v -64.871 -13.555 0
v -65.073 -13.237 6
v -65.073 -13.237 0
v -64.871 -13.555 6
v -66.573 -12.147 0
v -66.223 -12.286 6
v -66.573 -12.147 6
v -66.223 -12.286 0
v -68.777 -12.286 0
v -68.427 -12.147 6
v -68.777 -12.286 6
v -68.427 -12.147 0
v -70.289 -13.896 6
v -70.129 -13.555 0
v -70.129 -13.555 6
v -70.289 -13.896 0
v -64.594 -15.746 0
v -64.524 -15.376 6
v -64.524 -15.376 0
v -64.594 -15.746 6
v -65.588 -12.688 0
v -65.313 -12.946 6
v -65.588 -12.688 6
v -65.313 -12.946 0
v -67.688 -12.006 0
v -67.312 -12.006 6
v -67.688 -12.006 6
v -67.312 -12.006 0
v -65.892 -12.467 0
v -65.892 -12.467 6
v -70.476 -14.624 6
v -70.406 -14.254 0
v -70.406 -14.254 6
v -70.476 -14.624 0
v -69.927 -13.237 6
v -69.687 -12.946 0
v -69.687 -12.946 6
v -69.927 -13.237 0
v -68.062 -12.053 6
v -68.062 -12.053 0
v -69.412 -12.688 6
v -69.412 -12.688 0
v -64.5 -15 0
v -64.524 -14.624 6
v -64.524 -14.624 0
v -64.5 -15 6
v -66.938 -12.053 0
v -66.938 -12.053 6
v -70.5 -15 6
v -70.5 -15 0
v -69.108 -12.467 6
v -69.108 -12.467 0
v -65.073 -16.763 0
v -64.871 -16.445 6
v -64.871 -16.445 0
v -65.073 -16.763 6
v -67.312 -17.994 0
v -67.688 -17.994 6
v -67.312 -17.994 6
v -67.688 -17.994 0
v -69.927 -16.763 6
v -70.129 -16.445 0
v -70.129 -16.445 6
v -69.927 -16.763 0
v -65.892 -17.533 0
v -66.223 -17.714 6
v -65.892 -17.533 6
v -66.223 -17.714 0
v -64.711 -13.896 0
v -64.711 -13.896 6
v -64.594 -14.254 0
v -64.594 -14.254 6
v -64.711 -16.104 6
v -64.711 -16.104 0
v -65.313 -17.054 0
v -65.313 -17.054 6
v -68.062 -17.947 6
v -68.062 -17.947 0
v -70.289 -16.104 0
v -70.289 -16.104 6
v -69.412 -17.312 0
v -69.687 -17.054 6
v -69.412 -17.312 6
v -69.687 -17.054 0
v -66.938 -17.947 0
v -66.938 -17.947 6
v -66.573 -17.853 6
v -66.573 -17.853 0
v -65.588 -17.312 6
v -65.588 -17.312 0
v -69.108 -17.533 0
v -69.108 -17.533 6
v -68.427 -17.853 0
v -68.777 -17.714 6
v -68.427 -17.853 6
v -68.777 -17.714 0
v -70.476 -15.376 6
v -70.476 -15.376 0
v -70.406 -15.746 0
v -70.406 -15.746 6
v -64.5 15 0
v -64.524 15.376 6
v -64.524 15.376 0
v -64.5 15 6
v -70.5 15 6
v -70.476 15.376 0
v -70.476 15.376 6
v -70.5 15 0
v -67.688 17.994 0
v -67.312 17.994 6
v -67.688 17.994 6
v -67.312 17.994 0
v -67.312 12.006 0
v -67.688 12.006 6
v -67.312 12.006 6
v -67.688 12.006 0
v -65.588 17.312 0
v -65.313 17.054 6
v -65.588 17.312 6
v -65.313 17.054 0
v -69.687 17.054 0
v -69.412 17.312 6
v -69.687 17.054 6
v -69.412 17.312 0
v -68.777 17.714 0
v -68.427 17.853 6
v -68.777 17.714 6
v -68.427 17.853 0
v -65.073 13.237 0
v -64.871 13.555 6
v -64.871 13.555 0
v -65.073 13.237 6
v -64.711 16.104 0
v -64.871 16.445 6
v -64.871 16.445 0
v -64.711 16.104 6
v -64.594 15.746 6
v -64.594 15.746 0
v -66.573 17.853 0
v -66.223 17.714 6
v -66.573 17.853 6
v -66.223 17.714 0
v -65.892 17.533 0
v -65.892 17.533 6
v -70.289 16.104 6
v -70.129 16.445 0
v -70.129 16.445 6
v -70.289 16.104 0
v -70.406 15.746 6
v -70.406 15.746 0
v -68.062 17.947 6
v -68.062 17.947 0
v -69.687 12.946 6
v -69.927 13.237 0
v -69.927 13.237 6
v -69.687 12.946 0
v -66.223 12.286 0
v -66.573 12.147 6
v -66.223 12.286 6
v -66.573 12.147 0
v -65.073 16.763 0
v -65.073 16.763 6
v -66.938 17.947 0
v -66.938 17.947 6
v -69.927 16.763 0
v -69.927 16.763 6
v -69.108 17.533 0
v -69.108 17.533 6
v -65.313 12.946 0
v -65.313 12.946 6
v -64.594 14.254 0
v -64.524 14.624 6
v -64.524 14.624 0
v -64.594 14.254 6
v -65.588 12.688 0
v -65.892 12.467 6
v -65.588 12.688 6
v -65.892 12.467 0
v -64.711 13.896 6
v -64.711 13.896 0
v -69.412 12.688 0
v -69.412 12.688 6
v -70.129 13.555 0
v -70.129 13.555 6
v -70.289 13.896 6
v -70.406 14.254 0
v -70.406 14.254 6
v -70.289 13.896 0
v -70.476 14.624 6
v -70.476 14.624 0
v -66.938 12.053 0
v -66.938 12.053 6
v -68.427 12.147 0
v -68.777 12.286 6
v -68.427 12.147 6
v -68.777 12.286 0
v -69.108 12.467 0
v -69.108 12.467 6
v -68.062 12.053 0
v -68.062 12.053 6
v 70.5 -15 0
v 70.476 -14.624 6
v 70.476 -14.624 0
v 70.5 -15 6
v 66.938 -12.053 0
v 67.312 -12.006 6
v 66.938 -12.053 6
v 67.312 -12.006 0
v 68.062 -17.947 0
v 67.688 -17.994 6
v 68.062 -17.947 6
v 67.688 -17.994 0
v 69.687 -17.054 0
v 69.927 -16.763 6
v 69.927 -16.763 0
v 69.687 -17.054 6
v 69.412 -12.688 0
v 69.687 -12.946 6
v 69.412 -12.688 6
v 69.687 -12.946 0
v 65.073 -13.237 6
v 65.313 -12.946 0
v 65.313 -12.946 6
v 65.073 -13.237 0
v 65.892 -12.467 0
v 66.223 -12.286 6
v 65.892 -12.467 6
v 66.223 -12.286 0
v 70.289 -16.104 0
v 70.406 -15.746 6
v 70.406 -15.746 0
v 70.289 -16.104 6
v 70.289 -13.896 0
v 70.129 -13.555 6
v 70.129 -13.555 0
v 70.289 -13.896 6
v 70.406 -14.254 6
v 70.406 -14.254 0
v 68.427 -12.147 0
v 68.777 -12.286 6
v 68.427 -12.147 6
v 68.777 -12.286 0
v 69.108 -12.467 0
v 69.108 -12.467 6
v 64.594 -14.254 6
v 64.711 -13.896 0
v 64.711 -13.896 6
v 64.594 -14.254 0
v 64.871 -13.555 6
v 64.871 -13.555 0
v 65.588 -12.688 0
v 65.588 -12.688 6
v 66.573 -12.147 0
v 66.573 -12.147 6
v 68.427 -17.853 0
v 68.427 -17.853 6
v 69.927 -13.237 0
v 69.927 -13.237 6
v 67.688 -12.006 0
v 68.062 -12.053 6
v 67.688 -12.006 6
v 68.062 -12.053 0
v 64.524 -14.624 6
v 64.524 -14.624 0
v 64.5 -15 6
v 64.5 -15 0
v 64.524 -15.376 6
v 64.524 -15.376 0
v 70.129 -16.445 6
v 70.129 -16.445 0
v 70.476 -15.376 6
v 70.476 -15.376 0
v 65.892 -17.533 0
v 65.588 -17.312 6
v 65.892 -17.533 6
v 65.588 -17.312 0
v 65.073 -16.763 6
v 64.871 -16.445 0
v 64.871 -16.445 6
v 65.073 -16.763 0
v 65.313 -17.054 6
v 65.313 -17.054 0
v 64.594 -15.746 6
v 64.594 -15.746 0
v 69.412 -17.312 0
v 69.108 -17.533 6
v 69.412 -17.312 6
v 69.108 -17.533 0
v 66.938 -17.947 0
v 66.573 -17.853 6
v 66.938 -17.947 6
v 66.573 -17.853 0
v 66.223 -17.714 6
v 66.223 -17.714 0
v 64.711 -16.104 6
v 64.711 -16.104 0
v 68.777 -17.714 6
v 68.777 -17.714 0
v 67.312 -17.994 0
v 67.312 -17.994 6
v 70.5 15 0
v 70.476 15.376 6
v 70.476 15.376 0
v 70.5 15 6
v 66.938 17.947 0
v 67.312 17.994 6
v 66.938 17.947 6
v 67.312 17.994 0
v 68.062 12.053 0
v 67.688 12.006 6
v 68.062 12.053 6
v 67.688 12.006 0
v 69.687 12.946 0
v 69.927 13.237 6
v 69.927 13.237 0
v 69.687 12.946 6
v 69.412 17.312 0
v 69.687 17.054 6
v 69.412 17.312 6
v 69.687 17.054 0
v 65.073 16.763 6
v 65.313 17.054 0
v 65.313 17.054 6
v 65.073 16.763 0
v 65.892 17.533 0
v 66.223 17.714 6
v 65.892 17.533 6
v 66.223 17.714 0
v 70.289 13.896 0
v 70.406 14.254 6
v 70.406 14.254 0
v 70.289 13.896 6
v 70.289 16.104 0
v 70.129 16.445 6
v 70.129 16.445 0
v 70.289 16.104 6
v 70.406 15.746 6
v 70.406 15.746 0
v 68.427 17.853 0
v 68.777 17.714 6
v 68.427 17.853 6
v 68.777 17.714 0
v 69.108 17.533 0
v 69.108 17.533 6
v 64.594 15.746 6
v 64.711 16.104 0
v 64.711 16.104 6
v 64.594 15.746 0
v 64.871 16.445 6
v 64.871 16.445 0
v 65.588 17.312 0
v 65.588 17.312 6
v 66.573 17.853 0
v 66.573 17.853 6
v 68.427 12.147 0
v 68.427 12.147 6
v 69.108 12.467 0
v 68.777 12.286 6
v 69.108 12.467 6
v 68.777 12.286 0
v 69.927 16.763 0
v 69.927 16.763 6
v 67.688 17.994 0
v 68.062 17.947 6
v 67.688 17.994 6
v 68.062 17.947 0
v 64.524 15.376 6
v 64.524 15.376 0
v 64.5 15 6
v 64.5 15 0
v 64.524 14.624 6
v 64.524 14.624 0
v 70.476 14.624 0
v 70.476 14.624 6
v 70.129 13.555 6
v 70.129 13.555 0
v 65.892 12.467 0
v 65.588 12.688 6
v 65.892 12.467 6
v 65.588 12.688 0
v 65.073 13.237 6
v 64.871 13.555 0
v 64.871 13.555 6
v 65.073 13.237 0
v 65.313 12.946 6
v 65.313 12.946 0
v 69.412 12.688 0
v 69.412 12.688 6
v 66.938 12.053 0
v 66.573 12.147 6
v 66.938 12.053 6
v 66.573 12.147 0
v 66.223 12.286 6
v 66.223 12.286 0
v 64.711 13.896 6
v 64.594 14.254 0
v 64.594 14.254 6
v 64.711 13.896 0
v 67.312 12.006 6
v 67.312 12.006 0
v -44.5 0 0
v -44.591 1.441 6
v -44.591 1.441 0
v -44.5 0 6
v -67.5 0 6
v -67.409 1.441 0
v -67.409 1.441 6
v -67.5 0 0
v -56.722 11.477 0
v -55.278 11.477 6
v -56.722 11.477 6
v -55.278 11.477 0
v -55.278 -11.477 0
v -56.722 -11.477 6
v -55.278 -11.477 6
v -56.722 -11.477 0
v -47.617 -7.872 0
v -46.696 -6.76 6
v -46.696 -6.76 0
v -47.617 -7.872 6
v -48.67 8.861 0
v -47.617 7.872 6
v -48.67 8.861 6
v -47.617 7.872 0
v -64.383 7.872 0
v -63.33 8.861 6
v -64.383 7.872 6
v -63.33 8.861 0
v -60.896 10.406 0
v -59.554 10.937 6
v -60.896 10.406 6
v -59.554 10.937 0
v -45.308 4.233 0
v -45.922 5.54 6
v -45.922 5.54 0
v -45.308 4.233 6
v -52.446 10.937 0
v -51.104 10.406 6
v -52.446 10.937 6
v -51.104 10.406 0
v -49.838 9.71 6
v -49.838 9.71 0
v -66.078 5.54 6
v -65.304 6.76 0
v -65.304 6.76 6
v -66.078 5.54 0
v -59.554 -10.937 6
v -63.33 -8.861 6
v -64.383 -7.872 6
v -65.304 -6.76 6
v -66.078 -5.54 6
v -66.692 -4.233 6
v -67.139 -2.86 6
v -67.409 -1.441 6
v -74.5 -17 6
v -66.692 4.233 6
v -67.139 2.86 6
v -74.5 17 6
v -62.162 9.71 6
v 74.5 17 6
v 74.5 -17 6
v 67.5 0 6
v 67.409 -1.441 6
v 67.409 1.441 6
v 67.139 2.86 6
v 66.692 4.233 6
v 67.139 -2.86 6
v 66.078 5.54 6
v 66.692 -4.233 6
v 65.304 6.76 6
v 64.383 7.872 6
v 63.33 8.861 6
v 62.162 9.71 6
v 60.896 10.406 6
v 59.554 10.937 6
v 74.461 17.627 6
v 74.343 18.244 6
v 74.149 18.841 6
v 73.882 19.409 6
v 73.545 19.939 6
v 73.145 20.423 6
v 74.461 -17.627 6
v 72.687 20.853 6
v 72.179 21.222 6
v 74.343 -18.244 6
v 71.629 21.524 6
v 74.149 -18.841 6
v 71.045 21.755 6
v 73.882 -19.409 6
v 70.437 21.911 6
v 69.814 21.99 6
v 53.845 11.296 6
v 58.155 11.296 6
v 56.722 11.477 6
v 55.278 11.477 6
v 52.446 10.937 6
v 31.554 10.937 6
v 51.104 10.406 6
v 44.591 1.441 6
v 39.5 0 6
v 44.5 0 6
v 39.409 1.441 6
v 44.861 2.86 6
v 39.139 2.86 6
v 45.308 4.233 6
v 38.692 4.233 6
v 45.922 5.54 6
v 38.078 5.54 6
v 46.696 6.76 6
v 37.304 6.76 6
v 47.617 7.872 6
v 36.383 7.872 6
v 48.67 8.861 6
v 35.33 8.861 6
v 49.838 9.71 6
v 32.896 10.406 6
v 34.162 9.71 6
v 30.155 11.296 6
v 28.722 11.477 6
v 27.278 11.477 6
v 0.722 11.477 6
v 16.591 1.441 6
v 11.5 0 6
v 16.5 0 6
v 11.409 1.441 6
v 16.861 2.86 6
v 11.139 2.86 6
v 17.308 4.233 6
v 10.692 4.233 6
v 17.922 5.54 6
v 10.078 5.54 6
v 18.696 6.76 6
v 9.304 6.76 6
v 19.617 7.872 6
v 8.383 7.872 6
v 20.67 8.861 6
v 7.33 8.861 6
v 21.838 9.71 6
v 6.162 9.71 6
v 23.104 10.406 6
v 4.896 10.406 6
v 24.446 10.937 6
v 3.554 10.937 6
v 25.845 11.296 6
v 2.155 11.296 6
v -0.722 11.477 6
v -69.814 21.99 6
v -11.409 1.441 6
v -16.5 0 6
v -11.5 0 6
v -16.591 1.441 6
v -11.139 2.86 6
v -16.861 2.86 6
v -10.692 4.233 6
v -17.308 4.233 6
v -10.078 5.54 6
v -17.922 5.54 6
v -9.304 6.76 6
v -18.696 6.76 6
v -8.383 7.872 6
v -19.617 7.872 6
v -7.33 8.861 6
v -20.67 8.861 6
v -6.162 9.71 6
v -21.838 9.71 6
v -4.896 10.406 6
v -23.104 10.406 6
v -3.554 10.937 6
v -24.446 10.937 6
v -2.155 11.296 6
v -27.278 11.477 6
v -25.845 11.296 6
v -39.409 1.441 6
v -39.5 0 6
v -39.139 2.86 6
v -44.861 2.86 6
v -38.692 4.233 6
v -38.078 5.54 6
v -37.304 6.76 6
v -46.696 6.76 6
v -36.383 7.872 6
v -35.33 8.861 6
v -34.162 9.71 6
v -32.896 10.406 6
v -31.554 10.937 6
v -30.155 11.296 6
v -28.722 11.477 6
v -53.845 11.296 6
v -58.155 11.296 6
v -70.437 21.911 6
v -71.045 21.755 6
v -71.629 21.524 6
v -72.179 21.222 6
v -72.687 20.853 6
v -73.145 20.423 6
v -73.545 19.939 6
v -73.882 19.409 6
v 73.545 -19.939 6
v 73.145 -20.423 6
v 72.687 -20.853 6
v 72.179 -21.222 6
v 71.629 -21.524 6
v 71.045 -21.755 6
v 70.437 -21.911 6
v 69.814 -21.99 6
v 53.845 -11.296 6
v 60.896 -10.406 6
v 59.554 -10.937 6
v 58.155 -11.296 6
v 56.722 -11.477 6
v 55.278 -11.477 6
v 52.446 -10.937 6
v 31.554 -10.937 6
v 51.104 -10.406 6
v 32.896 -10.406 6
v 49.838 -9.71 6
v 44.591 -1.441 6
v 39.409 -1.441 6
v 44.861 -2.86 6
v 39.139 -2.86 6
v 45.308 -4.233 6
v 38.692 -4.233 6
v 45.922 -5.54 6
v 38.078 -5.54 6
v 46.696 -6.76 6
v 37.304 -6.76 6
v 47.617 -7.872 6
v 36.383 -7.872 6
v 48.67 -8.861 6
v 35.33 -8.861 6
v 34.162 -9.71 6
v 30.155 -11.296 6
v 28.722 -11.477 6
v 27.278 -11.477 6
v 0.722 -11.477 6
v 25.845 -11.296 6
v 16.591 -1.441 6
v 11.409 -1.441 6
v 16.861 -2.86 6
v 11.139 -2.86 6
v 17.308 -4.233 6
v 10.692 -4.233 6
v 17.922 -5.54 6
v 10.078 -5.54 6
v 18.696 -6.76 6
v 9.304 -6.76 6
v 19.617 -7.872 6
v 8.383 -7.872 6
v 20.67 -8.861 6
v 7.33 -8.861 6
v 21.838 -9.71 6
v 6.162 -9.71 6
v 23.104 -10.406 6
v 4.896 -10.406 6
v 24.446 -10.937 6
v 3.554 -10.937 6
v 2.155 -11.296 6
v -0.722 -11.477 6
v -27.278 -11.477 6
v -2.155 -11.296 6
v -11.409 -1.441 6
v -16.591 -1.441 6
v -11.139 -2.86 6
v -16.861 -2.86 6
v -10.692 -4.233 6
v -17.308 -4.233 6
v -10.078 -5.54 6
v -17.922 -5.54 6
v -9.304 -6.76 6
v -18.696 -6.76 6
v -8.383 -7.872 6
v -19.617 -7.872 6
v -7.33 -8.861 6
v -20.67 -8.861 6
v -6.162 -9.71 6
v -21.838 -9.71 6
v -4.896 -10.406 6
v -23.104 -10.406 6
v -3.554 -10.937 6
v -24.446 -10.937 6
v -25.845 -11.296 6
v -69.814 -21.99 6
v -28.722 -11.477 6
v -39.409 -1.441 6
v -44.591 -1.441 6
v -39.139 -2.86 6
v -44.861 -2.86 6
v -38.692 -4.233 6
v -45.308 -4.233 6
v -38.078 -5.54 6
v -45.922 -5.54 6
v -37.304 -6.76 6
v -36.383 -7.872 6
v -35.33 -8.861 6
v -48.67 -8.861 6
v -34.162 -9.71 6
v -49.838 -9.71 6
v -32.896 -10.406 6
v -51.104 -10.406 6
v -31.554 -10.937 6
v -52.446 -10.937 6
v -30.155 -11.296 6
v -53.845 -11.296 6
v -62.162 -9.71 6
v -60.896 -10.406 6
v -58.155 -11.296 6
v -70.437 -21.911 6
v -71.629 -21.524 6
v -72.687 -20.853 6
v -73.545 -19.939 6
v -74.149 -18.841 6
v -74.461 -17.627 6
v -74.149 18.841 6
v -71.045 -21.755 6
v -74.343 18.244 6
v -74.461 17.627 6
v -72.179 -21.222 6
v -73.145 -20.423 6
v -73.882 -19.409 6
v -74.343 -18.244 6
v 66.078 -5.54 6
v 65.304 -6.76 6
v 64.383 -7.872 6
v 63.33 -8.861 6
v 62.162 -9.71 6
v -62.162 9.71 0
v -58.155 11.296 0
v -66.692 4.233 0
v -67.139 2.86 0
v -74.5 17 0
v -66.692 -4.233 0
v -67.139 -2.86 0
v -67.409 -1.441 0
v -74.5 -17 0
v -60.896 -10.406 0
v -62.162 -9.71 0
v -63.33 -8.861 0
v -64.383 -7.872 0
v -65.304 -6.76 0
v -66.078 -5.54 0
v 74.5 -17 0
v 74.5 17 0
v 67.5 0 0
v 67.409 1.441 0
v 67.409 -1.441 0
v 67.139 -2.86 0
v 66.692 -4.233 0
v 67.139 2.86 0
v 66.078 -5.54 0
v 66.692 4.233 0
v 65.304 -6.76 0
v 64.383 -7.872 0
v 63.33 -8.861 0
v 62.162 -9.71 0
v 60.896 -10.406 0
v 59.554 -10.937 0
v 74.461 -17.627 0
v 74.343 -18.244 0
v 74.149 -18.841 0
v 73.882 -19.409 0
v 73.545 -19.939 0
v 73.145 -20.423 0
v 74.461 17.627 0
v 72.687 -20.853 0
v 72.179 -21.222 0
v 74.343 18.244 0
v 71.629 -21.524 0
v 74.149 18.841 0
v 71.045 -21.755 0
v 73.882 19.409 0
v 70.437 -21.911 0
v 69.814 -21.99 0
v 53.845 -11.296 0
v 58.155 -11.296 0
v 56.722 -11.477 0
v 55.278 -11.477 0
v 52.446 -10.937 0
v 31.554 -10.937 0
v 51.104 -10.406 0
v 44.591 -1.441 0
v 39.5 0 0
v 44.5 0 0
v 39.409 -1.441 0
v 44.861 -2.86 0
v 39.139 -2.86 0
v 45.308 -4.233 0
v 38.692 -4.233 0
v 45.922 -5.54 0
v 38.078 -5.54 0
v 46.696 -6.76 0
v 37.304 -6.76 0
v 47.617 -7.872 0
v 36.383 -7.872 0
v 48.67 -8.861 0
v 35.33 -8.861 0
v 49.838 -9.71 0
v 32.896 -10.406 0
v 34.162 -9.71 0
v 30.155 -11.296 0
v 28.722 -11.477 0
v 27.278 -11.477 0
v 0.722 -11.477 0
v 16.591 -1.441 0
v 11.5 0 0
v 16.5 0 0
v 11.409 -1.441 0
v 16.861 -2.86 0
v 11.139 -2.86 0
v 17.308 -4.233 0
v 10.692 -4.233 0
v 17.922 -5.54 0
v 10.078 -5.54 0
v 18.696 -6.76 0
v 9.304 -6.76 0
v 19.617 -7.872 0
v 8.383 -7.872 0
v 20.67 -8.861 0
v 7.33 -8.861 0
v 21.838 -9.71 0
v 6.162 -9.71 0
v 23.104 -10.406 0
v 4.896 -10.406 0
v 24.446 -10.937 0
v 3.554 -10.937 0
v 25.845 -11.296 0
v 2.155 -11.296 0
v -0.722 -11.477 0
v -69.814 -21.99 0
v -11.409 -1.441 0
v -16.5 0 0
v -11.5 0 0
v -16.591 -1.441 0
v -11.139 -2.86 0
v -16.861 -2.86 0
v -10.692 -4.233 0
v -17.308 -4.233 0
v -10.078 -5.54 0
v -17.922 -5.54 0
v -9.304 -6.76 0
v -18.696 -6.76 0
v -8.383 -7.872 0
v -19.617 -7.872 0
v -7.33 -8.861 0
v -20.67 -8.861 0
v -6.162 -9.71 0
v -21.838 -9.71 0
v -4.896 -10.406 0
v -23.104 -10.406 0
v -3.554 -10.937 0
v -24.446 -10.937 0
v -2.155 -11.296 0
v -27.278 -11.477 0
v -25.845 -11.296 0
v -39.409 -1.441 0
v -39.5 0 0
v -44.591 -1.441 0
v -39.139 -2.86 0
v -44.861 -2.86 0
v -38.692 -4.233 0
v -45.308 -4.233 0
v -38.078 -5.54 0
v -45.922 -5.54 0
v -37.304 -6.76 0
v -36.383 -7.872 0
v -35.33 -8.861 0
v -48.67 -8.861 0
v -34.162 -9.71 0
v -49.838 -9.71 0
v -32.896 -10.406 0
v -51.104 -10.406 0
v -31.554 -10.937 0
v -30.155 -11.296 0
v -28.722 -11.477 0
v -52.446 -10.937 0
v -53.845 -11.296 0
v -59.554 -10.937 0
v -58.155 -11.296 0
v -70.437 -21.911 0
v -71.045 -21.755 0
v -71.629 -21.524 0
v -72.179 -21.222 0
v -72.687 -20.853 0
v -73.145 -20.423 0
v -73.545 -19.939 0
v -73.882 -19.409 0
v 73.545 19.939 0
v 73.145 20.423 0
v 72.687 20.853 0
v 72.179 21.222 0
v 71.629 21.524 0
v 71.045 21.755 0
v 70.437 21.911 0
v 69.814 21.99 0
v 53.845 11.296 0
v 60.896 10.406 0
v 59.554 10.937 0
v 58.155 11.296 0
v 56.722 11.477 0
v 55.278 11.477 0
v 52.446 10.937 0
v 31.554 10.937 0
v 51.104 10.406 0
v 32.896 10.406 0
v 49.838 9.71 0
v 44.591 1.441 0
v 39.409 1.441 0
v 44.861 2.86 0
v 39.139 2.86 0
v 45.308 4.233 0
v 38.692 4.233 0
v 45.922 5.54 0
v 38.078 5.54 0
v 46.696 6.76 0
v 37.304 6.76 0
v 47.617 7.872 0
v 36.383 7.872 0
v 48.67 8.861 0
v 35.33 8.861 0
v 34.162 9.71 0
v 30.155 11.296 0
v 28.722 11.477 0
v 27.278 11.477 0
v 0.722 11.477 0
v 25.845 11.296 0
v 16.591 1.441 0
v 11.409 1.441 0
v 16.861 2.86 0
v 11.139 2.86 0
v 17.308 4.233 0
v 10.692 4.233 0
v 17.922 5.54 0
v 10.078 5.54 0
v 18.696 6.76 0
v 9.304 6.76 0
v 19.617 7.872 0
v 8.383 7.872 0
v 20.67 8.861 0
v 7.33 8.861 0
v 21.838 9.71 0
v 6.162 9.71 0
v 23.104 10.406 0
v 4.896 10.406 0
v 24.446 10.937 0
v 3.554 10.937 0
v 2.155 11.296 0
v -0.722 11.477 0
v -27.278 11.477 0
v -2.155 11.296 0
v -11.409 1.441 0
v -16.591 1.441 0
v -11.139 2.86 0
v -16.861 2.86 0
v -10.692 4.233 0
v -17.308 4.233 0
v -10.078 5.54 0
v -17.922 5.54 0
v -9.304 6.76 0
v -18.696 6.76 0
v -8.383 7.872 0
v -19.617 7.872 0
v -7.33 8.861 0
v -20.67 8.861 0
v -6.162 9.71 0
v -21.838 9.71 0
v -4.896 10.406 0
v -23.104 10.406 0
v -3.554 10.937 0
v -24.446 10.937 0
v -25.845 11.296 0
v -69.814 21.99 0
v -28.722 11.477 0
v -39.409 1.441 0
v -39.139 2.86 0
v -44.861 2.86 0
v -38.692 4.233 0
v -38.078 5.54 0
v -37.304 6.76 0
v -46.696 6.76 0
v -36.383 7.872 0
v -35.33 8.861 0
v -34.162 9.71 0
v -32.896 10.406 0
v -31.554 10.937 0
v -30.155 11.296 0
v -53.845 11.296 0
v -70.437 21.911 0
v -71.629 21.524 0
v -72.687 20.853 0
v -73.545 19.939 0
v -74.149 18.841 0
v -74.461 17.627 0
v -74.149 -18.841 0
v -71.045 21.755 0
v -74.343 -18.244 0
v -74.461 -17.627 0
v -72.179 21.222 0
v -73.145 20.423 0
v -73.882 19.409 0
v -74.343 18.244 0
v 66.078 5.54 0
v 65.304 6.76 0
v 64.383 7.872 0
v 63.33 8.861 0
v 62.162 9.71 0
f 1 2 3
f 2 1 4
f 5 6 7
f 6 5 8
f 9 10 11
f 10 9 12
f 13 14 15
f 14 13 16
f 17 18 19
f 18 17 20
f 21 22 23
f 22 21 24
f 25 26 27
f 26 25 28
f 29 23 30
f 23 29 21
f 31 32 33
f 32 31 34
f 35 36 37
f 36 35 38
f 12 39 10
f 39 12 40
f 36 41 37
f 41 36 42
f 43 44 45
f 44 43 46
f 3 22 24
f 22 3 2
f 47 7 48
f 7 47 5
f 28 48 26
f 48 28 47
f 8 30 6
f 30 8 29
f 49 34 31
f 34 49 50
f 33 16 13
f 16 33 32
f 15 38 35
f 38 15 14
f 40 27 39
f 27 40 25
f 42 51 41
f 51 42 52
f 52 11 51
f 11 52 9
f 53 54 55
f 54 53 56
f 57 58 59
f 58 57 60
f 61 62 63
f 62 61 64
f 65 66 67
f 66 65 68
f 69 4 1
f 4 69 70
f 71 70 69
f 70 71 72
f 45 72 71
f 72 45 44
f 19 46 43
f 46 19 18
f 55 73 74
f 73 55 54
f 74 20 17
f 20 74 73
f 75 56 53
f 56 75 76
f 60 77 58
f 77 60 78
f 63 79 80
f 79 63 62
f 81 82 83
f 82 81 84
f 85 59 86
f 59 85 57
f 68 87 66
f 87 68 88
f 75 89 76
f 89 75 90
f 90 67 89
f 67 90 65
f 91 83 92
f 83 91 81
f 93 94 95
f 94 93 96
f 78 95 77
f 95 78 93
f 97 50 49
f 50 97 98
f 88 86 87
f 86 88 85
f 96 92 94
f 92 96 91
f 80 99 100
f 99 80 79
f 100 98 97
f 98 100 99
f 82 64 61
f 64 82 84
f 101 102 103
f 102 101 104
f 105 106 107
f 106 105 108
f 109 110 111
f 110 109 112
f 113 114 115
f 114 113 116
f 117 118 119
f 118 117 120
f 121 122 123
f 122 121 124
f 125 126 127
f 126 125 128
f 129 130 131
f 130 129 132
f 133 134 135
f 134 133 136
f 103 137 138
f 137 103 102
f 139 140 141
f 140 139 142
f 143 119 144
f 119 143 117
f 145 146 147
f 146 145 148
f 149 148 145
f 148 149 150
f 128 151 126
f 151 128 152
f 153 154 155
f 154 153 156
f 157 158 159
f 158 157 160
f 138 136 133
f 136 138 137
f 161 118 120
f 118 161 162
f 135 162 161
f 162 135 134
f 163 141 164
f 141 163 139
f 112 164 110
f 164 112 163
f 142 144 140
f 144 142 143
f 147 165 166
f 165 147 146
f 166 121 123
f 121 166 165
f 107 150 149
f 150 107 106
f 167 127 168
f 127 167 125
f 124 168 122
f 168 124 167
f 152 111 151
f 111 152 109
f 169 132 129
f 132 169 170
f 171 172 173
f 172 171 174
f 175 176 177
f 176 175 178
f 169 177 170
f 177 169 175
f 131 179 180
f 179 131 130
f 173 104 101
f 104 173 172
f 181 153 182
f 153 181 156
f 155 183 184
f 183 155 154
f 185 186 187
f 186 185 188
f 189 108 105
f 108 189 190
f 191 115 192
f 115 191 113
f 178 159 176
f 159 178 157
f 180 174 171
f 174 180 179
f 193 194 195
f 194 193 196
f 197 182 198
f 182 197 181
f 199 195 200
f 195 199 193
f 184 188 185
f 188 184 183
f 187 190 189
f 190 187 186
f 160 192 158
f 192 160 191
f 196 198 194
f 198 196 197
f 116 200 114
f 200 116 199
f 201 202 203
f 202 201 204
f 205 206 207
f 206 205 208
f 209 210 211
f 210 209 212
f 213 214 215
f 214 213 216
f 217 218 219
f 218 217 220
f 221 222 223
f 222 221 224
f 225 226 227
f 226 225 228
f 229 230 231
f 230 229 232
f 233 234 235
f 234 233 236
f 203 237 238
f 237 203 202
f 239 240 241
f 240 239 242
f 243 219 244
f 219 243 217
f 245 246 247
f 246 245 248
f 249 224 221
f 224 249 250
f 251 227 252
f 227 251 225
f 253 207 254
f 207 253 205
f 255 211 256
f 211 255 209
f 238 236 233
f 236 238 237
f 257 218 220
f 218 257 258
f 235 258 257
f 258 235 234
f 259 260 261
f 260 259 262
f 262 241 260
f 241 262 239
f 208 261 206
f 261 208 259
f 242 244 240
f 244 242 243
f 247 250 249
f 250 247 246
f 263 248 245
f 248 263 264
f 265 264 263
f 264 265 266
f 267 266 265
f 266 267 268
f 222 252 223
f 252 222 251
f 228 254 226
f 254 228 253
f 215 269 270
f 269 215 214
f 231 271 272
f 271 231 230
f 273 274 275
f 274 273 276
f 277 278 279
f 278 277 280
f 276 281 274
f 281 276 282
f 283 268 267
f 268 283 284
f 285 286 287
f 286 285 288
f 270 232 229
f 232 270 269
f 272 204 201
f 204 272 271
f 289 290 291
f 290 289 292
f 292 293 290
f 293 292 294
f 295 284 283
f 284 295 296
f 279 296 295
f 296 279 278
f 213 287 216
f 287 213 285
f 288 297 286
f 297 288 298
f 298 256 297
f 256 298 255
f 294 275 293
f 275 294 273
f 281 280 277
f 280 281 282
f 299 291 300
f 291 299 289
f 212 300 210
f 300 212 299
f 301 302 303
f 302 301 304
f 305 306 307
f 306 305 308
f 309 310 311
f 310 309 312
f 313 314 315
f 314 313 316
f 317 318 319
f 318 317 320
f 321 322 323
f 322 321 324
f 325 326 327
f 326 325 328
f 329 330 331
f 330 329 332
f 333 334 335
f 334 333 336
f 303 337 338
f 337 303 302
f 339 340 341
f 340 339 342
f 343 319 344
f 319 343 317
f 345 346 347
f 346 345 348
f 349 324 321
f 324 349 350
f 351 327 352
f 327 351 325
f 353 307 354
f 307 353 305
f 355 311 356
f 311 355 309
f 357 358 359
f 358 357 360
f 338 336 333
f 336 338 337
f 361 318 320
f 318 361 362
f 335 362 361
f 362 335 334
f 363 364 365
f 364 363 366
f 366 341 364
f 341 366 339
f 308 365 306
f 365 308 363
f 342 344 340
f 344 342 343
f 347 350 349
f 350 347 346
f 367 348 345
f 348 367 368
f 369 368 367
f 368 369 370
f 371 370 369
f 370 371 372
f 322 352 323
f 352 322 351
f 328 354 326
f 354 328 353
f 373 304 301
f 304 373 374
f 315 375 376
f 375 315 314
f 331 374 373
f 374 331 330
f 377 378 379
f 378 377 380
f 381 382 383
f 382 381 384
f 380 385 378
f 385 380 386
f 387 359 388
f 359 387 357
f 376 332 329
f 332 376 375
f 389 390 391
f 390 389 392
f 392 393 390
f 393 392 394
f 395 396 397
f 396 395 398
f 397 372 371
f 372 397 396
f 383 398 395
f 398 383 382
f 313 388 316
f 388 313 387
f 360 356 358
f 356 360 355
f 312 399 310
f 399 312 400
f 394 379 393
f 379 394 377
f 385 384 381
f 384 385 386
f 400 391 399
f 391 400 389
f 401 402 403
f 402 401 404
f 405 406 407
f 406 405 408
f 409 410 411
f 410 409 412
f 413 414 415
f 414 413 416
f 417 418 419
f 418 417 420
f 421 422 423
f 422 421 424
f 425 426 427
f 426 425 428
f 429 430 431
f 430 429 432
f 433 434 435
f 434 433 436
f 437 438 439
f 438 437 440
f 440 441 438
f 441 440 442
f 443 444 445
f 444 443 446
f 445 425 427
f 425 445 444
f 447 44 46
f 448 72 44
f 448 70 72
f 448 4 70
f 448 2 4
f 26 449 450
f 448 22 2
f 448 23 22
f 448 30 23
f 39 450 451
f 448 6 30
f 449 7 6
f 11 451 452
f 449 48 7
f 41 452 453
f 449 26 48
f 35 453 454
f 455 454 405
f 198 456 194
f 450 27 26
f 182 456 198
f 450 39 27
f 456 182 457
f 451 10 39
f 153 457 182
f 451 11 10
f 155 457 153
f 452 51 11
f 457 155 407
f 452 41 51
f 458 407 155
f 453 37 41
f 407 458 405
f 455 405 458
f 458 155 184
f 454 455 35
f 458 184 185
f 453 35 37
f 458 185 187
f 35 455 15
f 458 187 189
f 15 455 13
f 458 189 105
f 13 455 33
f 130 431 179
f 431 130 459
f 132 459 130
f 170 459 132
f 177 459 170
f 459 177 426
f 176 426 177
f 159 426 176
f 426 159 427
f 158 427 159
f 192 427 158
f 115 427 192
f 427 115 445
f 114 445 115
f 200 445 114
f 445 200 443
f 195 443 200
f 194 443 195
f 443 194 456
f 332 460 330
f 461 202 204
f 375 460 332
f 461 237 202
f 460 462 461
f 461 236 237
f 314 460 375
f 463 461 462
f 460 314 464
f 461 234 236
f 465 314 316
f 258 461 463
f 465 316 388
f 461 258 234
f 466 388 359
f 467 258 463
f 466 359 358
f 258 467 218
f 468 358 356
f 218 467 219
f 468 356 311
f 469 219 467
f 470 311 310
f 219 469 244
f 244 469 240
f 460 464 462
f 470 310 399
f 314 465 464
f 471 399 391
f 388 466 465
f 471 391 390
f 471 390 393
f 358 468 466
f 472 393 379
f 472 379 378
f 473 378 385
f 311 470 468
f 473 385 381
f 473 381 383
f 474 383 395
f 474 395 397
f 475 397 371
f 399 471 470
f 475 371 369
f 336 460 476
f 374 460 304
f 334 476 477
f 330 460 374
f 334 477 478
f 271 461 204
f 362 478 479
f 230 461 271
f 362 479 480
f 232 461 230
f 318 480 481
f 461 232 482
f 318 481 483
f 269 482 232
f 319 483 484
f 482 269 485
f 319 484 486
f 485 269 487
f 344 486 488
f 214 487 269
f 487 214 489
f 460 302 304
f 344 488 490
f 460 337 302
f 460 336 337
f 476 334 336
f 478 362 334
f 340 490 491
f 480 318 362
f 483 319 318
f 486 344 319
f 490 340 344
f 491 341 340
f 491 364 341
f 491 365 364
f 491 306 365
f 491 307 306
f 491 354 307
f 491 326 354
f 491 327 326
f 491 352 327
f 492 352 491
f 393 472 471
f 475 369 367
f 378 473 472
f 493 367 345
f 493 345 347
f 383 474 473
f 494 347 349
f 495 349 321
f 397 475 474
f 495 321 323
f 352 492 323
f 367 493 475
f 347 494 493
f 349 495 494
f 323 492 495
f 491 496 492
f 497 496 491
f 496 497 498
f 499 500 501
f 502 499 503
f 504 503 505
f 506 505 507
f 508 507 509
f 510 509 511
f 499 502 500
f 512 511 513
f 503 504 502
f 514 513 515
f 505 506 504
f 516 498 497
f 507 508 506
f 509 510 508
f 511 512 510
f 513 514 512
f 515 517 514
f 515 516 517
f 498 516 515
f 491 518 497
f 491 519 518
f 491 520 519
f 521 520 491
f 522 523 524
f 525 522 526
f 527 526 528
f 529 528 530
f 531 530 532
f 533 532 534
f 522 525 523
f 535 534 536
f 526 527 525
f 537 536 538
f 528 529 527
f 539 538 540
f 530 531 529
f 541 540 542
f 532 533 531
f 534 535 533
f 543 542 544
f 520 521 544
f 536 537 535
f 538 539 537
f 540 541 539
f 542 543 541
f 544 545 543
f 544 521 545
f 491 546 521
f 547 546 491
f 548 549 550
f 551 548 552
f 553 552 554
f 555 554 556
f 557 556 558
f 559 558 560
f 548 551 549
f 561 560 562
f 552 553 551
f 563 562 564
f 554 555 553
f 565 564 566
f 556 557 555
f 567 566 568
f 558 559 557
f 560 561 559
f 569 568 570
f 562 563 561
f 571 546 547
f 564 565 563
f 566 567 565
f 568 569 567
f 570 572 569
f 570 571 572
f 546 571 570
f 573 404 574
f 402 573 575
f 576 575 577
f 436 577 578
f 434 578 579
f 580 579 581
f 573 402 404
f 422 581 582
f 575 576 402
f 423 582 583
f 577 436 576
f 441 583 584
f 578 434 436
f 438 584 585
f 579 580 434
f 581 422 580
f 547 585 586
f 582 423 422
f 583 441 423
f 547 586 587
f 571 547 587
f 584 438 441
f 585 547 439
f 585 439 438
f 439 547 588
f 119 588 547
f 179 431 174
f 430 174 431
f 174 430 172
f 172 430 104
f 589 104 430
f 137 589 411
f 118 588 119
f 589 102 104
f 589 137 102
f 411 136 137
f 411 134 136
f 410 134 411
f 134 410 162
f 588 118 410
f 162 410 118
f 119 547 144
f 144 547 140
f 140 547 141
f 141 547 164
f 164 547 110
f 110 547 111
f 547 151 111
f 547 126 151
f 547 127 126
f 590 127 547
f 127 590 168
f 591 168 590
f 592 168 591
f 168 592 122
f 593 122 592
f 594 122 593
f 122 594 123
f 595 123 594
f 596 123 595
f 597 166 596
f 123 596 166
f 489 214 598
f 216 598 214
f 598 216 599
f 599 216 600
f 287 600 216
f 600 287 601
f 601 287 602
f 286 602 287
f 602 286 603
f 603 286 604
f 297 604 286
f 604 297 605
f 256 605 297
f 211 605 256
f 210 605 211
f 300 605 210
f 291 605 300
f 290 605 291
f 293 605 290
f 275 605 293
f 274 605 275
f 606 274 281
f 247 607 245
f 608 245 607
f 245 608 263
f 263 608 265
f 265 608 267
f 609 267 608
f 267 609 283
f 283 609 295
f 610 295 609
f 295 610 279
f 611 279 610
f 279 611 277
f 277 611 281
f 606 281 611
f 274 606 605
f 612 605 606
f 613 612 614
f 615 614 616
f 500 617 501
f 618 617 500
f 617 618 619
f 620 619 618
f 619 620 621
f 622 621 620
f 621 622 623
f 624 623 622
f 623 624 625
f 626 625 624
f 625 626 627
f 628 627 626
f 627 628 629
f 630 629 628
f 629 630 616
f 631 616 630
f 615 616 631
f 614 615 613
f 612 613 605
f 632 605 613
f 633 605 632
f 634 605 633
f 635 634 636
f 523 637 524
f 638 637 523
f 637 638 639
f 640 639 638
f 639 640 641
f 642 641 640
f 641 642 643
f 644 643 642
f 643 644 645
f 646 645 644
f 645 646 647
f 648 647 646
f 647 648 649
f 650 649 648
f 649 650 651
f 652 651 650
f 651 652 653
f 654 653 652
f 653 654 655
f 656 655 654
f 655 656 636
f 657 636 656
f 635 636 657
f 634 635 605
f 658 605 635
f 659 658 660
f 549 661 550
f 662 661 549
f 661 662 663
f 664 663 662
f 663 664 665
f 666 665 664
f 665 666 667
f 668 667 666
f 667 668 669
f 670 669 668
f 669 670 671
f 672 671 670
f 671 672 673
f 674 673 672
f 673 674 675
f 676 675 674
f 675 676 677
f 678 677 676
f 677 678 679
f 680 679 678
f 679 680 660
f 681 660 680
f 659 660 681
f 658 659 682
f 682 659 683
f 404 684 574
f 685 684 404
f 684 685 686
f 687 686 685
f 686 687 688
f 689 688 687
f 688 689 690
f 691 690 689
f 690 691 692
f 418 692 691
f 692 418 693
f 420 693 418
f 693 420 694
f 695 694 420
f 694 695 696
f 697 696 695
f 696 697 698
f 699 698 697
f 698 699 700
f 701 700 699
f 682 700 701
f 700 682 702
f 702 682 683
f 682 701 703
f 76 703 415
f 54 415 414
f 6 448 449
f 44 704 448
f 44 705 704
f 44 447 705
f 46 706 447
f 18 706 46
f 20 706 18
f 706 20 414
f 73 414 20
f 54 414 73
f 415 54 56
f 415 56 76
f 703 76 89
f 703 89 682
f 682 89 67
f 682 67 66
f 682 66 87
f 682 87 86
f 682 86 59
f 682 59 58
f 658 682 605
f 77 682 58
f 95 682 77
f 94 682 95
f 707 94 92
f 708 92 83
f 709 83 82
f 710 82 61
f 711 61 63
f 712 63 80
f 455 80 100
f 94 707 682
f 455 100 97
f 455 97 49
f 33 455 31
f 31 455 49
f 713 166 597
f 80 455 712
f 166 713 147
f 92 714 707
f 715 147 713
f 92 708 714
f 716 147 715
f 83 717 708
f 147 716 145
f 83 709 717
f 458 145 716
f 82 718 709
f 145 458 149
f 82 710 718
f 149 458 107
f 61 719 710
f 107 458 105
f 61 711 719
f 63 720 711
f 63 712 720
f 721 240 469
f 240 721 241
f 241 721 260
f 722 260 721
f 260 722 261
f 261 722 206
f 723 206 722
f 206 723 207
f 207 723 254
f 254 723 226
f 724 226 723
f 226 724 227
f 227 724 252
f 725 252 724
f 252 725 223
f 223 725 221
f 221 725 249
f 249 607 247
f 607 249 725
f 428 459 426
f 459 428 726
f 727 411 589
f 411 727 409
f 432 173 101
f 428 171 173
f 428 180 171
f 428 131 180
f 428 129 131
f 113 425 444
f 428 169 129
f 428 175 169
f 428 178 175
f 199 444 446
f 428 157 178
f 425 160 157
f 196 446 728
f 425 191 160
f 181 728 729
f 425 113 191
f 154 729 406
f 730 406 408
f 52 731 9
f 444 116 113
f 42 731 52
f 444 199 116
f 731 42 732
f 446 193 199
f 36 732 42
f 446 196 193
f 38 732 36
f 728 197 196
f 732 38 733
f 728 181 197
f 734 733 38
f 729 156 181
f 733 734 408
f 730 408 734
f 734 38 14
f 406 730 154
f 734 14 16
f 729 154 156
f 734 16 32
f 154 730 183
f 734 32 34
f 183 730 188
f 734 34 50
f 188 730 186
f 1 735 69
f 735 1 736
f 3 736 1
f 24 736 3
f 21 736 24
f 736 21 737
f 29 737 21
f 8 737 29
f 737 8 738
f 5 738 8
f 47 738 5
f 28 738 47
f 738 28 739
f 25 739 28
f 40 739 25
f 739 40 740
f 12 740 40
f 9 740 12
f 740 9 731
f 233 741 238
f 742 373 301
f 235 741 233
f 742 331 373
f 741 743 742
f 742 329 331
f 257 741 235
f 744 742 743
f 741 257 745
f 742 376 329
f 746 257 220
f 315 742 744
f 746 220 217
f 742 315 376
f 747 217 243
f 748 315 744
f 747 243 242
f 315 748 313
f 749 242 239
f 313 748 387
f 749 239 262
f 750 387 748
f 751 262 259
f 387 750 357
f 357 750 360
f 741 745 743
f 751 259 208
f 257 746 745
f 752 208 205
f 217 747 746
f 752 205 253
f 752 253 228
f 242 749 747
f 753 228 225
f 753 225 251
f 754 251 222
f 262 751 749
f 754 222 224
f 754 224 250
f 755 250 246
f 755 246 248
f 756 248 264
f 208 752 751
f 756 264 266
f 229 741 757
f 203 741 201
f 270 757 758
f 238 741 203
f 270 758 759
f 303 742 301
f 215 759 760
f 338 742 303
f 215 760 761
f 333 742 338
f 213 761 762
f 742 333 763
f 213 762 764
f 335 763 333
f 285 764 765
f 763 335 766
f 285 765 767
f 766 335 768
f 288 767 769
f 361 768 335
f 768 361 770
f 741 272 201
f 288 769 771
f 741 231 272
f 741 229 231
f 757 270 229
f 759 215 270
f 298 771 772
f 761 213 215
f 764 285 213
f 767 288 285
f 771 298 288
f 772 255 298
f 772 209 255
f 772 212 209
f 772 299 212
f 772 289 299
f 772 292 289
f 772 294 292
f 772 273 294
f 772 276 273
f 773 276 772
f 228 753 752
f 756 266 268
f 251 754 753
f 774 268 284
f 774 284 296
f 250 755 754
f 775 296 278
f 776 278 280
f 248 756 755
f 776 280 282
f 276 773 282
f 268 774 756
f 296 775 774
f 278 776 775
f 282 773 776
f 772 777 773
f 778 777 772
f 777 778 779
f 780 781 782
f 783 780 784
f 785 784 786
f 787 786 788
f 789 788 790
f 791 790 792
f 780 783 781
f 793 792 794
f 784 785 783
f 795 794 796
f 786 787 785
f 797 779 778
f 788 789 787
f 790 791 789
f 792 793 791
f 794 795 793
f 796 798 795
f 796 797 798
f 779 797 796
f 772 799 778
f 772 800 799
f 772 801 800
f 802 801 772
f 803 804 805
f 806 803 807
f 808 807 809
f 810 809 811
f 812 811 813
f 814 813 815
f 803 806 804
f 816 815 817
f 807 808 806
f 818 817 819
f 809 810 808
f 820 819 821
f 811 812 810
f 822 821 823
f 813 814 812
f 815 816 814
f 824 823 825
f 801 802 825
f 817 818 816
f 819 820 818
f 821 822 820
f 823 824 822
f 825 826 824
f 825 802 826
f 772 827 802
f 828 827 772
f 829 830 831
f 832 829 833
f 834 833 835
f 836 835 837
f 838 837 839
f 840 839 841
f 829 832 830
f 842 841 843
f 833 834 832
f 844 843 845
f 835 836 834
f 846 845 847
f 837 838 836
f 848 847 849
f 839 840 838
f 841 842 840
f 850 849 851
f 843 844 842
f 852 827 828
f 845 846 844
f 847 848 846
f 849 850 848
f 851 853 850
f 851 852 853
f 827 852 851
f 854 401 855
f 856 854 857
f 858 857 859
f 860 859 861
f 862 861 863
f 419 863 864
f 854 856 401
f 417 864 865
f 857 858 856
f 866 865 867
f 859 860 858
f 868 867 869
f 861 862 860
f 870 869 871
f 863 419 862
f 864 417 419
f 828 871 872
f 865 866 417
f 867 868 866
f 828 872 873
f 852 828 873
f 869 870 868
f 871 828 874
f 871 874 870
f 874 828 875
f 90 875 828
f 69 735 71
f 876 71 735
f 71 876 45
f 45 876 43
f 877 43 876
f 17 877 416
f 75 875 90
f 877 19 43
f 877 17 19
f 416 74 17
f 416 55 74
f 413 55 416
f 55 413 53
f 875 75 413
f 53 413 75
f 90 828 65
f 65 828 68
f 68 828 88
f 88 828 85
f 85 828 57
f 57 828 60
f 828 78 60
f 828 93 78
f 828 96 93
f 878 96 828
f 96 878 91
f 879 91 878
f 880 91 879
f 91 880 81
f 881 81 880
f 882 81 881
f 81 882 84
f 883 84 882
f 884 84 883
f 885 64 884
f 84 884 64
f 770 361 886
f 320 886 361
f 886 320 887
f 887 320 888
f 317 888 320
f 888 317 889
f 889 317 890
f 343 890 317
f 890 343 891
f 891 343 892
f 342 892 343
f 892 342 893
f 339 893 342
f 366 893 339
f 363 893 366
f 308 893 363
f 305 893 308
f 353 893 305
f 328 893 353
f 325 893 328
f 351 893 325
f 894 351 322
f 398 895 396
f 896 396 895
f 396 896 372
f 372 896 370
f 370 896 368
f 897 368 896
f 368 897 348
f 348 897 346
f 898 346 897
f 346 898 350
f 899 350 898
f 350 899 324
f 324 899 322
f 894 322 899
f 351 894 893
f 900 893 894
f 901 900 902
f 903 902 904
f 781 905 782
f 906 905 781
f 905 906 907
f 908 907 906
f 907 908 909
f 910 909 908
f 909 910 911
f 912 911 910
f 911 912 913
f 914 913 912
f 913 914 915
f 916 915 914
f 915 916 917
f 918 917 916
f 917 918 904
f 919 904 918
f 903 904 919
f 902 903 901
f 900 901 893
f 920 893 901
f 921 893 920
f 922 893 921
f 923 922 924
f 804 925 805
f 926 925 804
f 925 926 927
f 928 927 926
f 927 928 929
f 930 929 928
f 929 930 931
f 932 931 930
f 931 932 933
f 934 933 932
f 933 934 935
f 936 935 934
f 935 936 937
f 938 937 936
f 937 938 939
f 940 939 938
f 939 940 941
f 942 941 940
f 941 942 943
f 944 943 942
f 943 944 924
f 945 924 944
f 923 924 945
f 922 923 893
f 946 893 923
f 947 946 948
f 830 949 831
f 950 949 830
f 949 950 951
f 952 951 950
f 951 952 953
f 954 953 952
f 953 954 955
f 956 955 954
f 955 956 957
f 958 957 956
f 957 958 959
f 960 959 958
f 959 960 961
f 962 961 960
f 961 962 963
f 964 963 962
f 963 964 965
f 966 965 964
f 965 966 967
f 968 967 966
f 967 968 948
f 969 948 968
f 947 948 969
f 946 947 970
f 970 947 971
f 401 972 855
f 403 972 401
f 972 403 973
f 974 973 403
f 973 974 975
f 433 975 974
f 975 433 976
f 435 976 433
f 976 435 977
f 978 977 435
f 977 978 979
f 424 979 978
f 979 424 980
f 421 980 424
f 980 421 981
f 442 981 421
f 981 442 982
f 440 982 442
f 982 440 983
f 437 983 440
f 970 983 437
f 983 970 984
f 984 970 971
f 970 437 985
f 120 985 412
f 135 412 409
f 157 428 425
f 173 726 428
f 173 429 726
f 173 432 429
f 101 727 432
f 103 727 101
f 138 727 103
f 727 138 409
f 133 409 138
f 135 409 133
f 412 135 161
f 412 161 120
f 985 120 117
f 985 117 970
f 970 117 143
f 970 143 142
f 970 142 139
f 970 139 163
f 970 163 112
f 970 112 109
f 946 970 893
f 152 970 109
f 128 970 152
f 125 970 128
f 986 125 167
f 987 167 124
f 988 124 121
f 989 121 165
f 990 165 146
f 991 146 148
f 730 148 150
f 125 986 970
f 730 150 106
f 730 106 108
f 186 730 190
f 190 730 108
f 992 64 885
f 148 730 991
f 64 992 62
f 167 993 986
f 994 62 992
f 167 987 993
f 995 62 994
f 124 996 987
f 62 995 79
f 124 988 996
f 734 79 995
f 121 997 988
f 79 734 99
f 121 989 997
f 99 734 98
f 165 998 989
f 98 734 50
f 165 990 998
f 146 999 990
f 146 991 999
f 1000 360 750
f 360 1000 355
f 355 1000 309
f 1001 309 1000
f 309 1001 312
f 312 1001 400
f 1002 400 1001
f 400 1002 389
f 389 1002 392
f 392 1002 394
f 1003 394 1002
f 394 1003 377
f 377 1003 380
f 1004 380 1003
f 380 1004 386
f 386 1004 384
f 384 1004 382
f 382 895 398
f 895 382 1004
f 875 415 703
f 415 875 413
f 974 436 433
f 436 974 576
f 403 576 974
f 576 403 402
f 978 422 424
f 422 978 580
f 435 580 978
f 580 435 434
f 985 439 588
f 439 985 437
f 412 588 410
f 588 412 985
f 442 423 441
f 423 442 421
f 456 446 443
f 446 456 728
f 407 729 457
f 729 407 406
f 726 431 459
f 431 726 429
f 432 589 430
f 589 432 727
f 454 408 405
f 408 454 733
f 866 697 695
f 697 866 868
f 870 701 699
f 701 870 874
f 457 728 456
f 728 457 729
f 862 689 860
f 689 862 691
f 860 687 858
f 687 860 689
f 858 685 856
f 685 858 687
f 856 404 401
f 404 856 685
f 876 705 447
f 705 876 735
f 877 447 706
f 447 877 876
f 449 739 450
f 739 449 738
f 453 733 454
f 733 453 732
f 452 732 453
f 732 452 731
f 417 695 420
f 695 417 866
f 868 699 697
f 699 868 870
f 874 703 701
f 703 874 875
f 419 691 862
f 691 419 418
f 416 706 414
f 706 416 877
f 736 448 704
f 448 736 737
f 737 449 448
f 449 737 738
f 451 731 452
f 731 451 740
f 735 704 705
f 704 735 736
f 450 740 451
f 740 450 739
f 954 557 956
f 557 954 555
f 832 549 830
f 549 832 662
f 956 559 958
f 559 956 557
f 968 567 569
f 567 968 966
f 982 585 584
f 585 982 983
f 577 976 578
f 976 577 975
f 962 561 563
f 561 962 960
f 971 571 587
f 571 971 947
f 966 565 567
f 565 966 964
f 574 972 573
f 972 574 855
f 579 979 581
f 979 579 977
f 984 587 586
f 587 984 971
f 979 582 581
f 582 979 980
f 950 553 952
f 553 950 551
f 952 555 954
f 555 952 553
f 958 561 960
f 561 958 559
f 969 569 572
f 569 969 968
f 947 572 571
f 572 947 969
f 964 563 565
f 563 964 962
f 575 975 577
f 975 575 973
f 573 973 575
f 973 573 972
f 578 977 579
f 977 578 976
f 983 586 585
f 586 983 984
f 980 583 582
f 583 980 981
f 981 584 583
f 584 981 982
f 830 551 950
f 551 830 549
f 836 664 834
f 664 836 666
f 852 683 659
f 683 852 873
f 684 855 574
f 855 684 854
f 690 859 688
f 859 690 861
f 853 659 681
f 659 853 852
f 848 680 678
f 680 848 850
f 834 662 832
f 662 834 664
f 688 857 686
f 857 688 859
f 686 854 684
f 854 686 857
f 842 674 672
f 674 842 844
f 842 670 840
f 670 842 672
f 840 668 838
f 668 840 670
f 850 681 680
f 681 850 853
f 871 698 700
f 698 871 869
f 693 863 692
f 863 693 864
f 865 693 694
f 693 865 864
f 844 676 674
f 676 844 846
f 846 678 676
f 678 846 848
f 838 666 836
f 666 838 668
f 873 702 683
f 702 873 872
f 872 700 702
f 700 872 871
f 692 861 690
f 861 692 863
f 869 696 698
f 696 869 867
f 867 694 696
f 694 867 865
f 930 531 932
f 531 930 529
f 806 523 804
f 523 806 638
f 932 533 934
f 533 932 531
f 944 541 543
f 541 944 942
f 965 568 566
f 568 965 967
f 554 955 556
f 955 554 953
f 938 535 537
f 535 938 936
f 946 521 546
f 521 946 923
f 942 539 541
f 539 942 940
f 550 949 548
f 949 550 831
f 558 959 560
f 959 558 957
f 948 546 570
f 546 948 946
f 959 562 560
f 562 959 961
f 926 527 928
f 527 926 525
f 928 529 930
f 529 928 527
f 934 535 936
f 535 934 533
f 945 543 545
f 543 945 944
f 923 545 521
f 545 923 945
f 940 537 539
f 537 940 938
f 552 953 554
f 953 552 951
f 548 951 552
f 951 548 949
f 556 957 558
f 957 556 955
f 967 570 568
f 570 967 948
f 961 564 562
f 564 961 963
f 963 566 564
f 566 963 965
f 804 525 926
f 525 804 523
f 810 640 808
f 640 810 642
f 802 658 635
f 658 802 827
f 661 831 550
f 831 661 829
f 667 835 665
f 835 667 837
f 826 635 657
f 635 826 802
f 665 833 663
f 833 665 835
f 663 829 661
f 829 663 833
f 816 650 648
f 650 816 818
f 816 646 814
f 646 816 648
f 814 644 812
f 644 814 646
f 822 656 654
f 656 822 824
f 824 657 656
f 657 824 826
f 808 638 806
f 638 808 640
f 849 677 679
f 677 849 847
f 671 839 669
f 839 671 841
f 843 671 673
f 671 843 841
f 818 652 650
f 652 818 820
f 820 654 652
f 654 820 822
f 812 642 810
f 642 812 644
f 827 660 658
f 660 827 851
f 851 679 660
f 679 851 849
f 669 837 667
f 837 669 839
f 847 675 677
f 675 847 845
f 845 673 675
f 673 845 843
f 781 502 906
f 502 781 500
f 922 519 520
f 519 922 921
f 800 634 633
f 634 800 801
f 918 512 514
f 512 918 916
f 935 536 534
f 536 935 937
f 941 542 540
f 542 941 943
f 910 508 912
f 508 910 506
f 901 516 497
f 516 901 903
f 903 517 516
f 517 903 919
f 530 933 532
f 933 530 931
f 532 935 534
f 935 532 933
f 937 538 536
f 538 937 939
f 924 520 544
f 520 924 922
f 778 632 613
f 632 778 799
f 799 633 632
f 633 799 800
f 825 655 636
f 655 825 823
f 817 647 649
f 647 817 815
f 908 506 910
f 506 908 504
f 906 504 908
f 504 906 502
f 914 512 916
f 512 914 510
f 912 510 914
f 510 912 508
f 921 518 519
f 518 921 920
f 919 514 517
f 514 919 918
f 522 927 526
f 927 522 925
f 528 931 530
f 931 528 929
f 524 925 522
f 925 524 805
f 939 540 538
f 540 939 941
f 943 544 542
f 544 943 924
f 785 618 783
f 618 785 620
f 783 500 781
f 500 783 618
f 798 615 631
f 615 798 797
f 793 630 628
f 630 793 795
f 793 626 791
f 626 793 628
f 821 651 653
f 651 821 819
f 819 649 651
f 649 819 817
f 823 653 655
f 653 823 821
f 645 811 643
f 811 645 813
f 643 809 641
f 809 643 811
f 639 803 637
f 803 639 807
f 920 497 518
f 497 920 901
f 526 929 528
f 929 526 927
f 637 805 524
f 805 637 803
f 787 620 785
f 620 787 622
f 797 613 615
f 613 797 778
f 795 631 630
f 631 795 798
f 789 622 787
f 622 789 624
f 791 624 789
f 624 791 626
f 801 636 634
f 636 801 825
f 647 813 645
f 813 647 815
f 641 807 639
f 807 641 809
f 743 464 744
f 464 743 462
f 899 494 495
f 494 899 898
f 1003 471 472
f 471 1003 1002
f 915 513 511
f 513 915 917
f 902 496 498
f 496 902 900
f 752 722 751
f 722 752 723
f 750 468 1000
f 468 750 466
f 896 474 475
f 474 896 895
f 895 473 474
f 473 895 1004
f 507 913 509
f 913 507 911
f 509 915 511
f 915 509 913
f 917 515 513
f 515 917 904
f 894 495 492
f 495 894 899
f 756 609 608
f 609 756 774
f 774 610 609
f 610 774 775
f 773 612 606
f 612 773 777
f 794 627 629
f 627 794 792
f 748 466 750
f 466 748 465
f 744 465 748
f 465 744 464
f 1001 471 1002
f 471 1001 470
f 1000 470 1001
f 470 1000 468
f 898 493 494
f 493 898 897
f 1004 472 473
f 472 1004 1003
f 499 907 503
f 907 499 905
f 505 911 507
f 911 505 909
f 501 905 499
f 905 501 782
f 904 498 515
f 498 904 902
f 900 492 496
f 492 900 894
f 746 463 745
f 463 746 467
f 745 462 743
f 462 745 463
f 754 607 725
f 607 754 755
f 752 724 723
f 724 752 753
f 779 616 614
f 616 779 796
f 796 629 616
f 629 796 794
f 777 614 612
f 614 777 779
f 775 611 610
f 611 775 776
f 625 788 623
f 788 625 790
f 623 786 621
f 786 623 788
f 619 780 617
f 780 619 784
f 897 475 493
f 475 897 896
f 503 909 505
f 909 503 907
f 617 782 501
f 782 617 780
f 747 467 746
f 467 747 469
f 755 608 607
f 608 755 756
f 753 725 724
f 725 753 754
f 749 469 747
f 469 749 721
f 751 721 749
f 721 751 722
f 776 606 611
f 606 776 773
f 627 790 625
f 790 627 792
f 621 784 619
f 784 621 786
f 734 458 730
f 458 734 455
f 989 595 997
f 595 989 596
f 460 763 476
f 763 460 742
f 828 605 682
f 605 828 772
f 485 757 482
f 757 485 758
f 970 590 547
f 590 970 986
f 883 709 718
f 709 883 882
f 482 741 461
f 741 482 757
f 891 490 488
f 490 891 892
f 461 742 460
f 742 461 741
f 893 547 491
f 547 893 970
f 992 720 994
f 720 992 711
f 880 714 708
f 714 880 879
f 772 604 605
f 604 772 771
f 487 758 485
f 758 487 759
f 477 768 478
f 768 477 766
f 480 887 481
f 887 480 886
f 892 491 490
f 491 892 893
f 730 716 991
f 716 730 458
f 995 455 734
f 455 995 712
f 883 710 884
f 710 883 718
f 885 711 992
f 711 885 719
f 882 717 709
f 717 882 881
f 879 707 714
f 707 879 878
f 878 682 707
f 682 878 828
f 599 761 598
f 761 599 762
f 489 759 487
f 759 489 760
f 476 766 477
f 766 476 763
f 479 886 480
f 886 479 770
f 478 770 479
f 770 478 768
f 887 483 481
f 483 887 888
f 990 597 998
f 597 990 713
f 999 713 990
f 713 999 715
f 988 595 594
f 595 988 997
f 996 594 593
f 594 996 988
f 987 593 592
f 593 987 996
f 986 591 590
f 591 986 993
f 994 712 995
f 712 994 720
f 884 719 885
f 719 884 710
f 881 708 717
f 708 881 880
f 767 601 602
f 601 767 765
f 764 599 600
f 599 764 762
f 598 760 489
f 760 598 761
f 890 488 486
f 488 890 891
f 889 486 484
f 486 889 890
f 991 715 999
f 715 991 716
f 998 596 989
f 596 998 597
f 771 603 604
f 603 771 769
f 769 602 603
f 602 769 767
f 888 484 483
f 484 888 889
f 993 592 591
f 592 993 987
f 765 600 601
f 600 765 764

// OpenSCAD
$fn = 50;


difference() {
	union() {
		hull() {
			translate(v = [-69.5000000000, 17.0000000000, 0]) {
				cylinder(h = 6, r = 5);
			}
			translate(v = [69.5000000000, 17.0000000000, 0]) {
				cylinder(h = 6, r = 5);
			}
			translate(v = [-69.5000000000, -17.0000000000, 0]) {
				cylinder(h = 6, r = 5);
			}
			translate(v = [69.5000000000, -17.0000000000, 0]) {
				cylinder(h = 6, r = 5);
			}
		}
	}
	union() {
		#translate(v = [-67.5000000000, -15.0000000000, -100.0000000000]) {
			cylinder(h = 200, r = 3.0000000000);
		}
		#translate(v = [-67.5000000000, 15.0000000000, -100.0000000000]) {
			cylinder(h = 200, r = 3.0000000000);
		}
		#translate(v = [67.5000000000, -15.0000000000, -100.0000000000]) {
			cylinder(h = 200, r = 3.0000000000);
		}
		#translate(v = [67.5000000000, 15.0000000000, -100.0000000000]) {
			cylinder(h = 200, r = 3.0000000000);
		}
		#translate(v = [-56.0000000000, 0, 0]) {
			cylinder(h = 6, r = 11.5000000000);
		}
		#translate(v = [-28.0000000000, 0, 0]) {
			cylinder(h = 6, r = 11.5000000000);
		}
		#cylinder(h = 6, r = 11.5000000000);
		#translate(v = [28.0000000000, 0, 0]) {
			cylinder(h = 6, r = 11.5000000000);
		}
		#translate(v = [56.0000000000, 0, 0]) {
			cylinder(h = 6, r = 11.5000000000);
		}
	}
}
